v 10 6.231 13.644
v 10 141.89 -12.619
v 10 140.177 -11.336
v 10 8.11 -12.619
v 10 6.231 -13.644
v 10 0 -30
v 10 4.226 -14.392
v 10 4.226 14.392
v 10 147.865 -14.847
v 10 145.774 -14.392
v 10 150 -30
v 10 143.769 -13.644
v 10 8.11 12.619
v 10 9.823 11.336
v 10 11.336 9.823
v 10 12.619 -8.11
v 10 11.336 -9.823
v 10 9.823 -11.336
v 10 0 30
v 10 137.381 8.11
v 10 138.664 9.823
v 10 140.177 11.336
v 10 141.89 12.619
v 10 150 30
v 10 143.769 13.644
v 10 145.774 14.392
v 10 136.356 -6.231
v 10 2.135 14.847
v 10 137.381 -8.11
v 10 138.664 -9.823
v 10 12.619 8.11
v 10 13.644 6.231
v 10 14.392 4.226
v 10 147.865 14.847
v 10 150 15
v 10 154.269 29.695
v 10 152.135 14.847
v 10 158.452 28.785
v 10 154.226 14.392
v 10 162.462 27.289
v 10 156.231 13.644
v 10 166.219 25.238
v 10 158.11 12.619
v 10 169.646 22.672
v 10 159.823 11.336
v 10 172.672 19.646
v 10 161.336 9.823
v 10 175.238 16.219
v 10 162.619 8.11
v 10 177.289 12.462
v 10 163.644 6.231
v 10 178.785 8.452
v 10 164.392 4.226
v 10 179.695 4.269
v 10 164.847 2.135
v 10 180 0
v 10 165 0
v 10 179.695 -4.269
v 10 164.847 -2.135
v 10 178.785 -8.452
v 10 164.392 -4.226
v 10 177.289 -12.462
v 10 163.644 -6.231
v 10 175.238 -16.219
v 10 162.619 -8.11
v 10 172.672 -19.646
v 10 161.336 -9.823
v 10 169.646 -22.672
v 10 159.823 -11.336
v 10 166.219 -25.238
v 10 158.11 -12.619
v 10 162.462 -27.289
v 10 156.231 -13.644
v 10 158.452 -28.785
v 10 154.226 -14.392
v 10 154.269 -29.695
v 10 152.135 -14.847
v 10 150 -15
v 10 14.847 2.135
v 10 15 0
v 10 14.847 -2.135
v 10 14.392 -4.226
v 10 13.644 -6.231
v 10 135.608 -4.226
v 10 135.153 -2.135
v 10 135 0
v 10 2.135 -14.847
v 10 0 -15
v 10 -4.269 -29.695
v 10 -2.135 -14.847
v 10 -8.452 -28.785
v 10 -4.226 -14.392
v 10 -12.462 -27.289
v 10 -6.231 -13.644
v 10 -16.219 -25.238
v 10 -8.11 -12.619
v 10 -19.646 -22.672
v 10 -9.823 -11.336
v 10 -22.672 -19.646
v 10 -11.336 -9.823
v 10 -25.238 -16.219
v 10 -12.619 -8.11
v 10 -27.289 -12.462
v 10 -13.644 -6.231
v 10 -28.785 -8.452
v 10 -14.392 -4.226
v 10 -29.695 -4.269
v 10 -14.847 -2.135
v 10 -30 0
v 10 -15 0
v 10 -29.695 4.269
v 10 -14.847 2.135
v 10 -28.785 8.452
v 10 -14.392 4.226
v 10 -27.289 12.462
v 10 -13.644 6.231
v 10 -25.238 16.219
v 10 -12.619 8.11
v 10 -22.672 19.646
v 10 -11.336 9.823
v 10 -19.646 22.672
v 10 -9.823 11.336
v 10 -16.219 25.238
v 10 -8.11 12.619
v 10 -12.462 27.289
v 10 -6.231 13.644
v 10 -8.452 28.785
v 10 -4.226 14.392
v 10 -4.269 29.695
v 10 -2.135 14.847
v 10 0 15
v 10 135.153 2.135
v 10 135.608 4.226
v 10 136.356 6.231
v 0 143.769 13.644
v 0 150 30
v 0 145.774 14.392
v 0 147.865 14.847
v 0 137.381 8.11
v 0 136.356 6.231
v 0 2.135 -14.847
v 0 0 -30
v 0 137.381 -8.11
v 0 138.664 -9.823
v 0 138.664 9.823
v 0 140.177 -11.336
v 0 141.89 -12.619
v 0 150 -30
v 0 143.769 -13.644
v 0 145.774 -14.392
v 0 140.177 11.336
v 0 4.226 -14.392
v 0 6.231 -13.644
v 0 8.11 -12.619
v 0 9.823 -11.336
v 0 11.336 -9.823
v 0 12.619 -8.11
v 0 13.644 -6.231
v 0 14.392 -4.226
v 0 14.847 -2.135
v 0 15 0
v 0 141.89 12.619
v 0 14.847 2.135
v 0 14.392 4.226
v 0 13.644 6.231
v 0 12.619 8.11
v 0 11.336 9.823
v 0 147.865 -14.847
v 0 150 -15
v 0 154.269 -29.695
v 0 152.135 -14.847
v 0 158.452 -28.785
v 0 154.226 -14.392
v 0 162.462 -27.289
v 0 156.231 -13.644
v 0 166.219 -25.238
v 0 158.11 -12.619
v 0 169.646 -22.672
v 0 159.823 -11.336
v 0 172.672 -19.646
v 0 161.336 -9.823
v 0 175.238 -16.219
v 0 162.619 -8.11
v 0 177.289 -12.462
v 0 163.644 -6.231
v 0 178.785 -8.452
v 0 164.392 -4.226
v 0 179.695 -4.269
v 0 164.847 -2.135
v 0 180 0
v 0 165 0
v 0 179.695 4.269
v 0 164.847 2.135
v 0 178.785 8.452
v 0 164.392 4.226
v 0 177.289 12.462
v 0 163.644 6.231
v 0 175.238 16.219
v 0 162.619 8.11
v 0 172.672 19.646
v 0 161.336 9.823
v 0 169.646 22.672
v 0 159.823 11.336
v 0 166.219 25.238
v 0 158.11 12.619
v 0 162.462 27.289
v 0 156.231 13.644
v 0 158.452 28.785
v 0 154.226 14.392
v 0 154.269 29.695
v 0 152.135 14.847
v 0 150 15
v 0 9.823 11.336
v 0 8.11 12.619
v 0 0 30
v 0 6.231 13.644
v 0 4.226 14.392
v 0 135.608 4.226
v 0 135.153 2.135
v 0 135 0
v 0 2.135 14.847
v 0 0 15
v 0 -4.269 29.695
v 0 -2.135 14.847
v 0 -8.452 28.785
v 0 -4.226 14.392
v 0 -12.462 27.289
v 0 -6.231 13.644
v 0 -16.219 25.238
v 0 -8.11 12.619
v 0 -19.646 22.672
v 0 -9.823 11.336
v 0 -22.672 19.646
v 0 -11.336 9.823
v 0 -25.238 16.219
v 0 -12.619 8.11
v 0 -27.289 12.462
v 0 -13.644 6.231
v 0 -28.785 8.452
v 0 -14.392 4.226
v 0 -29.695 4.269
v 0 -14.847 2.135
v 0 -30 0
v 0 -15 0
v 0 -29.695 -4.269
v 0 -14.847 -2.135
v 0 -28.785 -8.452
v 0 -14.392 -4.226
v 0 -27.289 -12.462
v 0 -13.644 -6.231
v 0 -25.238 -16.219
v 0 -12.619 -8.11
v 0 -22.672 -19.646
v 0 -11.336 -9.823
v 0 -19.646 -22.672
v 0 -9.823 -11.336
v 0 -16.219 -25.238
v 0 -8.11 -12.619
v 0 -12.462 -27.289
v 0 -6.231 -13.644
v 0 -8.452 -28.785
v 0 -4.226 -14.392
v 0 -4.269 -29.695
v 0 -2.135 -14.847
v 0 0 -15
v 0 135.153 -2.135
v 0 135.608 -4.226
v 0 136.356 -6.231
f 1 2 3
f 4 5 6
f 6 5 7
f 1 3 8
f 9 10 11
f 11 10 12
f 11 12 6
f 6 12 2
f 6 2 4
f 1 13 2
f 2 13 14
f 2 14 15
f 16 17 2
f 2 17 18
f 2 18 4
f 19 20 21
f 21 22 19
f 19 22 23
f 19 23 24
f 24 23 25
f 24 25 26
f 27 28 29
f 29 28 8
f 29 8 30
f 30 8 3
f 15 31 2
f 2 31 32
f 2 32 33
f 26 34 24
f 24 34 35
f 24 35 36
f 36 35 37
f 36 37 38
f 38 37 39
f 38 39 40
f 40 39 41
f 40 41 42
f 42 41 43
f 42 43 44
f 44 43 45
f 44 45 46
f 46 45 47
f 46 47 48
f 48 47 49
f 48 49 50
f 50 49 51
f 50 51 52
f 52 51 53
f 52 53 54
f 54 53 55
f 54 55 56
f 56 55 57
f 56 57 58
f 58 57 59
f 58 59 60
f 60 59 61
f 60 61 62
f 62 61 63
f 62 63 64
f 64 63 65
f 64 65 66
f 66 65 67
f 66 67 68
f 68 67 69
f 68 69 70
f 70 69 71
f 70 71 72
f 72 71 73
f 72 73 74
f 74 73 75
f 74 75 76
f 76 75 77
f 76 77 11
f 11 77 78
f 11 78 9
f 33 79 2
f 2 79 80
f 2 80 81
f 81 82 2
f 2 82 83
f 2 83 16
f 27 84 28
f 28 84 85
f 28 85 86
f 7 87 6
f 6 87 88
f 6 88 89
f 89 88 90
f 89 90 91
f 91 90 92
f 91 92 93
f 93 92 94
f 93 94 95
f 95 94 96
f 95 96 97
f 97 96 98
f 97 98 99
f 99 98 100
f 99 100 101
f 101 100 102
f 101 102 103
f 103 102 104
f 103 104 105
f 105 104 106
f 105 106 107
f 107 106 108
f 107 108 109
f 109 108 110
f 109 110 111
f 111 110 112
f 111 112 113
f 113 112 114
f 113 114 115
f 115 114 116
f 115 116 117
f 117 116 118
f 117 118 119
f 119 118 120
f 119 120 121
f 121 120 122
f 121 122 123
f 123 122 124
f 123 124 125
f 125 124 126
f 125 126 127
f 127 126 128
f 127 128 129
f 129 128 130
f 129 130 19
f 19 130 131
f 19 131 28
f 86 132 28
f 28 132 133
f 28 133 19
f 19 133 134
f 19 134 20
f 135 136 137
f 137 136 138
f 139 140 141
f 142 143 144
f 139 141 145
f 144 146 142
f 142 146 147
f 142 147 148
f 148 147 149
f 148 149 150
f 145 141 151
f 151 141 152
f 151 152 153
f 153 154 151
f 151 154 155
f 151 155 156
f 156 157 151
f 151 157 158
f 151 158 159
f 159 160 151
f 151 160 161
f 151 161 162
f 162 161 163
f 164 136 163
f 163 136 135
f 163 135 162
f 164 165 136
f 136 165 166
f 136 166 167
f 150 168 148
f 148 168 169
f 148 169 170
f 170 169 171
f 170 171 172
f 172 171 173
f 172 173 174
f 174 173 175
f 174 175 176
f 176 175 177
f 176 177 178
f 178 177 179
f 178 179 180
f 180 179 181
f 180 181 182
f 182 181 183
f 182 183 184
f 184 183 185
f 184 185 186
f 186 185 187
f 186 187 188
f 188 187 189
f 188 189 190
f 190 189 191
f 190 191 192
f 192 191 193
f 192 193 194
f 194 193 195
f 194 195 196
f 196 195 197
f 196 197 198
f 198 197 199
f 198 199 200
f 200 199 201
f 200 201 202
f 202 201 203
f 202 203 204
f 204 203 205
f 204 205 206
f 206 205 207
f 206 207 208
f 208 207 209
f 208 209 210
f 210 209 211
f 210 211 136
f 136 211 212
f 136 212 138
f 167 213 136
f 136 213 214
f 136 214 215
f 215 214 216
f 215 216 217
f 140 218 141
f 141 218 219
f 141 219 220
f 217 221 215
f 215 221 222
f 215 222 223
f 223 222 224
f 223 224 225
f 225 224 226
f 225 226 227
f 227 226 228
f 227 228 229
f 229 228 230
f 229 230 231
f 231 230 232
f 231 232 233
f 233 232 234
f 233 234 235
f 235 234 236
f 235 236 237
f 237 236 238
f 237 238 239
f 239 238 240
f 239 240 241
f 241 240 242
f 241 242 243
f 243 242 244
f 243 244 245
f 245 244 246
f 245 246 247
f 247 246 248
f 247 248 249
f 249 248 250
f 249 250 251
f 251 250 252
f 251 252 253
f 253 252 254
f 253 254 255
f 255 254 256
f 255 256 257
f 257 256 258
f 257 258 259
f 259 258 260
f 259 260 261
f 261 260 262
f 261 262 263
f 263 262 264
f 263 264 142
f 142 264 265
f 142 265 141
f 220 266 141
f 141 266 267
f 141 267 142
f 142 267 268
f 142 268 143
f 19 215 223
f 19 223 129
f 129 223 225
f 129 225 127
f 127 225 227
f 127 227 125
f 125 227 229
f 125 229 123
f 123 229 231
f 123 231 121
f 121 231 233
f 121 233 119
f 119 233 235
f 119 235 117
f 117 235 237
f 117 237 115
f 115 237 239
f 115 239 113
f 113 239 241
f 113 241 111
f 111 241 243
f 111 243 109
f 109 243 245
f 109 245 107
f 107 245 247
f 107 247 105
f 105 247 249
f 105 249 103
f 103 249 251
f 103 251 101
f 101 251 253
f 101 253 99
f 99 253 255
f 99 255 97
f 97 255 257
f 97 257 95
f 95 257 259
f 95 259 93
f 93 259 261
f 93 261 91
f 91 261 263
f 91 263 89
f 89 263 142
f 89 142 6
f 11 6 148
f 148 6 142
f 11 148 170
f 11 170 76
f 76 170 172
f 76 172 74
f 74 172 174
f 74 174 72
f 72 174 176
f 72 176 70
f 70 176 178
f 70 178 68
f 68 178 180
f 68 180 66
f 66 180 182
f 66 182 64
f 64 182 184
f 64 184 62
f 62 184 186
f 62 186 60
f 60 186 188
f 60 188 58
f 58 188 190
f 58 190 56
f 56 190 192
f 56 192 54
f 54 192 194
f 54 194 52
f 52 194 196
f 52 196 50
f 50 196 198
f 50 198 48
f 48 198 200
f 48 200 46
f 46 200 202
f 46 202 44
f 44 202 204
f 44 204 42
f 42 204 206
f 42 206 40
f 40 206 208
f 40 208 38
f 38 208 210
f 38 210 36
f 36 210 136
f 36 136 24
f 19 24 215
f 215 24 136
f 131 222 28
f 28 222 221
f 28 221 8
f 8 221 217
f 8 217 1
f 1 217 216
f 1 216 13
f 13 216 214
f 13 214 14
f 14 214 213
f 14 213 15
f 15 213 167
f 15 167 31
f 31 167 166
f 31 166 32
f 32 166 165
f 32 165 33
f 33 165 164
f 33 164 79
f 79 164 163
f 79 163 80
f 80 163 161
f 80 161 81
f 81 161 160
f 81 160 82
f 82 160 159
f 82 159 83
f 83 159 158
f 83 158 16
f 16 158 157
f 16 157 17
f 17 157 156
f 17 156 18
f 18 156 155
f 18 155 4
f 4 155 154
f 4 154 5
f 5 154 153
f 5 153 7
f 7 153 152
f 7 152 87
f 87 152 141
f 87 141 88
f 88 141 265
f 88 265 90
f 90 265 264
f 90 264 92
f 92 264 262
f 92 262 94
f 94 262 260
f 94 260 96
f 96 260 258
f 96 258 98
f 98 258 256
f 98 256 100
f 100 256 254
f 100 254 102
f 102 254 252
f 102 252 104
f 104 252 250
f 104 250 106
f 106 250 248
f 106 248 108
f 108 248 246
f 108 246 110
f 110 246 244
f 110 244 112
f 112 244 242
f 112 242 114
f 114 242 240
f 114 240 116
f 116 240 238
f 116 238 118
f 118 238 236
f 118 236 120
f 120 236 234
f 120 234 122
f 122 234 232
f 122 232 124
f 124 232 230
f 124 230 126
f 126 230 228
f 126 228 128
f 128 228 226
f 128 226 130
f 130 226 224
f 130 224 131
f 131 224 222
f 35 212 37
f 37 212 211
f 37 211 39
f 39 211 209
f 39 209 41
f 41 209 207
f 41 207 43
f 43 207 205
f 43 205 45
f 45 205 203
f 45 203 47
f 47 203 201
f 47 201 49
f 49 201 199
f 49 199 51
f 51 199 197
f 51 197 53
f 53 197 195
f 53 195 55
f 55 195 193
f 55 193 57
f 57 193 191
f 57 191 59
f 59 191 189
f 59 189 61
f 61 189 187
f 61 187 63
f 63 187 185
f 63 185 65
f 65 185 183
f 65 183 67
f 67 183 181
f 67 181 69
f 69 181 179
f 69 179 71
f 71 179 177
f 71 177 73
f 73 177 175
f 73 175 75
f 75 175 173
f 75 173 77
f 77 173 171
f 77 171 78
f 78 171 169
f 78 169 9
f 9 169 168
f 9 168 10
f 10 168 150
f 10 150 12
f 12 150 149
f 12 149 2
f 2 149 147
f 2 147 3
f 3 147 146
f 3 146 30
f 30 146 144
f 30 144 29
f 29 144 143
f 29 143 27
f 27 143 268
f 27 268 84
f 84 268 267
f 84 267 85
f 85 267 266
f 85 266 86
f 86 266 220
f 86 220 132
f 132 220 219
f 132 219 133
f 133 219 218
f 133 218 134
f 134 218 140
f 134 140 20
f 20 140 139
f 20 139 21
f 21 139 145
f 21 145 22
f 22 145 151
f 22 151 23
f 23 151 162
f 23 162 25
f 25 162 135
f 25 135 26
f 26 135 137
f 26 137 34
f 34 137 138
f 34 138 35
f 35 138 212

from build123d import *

# Parameters (mm, degrees)
SKETCH1_R           = 15
BOSS_EXTRUDE1_DEPTH = 10


with BuildPart() as part:
    # Sketch1 → Boss-Extrude1 (new body)
    with BuildSketch(Plane.YZ):
        with BuildLine():
            Line((0, 30), (150, 30))
            ThreePointArc((150, 30), (180, 0), (150, -30))
            Line((150, -30), (0, -30))
            ThreePointArc((0, -30), (-30, 0), (0, 30))
        make_face()
        Circle(SKETCH1_R, mode=Mode.SUBTRACT)
        with Locations((150, 0)):
            Circle(SKETCH1_R, mode=Mode.SUBTRACT)
    extrude(amount=BOSS_EXTRUDE1_DEPTH)


solid = part.part
